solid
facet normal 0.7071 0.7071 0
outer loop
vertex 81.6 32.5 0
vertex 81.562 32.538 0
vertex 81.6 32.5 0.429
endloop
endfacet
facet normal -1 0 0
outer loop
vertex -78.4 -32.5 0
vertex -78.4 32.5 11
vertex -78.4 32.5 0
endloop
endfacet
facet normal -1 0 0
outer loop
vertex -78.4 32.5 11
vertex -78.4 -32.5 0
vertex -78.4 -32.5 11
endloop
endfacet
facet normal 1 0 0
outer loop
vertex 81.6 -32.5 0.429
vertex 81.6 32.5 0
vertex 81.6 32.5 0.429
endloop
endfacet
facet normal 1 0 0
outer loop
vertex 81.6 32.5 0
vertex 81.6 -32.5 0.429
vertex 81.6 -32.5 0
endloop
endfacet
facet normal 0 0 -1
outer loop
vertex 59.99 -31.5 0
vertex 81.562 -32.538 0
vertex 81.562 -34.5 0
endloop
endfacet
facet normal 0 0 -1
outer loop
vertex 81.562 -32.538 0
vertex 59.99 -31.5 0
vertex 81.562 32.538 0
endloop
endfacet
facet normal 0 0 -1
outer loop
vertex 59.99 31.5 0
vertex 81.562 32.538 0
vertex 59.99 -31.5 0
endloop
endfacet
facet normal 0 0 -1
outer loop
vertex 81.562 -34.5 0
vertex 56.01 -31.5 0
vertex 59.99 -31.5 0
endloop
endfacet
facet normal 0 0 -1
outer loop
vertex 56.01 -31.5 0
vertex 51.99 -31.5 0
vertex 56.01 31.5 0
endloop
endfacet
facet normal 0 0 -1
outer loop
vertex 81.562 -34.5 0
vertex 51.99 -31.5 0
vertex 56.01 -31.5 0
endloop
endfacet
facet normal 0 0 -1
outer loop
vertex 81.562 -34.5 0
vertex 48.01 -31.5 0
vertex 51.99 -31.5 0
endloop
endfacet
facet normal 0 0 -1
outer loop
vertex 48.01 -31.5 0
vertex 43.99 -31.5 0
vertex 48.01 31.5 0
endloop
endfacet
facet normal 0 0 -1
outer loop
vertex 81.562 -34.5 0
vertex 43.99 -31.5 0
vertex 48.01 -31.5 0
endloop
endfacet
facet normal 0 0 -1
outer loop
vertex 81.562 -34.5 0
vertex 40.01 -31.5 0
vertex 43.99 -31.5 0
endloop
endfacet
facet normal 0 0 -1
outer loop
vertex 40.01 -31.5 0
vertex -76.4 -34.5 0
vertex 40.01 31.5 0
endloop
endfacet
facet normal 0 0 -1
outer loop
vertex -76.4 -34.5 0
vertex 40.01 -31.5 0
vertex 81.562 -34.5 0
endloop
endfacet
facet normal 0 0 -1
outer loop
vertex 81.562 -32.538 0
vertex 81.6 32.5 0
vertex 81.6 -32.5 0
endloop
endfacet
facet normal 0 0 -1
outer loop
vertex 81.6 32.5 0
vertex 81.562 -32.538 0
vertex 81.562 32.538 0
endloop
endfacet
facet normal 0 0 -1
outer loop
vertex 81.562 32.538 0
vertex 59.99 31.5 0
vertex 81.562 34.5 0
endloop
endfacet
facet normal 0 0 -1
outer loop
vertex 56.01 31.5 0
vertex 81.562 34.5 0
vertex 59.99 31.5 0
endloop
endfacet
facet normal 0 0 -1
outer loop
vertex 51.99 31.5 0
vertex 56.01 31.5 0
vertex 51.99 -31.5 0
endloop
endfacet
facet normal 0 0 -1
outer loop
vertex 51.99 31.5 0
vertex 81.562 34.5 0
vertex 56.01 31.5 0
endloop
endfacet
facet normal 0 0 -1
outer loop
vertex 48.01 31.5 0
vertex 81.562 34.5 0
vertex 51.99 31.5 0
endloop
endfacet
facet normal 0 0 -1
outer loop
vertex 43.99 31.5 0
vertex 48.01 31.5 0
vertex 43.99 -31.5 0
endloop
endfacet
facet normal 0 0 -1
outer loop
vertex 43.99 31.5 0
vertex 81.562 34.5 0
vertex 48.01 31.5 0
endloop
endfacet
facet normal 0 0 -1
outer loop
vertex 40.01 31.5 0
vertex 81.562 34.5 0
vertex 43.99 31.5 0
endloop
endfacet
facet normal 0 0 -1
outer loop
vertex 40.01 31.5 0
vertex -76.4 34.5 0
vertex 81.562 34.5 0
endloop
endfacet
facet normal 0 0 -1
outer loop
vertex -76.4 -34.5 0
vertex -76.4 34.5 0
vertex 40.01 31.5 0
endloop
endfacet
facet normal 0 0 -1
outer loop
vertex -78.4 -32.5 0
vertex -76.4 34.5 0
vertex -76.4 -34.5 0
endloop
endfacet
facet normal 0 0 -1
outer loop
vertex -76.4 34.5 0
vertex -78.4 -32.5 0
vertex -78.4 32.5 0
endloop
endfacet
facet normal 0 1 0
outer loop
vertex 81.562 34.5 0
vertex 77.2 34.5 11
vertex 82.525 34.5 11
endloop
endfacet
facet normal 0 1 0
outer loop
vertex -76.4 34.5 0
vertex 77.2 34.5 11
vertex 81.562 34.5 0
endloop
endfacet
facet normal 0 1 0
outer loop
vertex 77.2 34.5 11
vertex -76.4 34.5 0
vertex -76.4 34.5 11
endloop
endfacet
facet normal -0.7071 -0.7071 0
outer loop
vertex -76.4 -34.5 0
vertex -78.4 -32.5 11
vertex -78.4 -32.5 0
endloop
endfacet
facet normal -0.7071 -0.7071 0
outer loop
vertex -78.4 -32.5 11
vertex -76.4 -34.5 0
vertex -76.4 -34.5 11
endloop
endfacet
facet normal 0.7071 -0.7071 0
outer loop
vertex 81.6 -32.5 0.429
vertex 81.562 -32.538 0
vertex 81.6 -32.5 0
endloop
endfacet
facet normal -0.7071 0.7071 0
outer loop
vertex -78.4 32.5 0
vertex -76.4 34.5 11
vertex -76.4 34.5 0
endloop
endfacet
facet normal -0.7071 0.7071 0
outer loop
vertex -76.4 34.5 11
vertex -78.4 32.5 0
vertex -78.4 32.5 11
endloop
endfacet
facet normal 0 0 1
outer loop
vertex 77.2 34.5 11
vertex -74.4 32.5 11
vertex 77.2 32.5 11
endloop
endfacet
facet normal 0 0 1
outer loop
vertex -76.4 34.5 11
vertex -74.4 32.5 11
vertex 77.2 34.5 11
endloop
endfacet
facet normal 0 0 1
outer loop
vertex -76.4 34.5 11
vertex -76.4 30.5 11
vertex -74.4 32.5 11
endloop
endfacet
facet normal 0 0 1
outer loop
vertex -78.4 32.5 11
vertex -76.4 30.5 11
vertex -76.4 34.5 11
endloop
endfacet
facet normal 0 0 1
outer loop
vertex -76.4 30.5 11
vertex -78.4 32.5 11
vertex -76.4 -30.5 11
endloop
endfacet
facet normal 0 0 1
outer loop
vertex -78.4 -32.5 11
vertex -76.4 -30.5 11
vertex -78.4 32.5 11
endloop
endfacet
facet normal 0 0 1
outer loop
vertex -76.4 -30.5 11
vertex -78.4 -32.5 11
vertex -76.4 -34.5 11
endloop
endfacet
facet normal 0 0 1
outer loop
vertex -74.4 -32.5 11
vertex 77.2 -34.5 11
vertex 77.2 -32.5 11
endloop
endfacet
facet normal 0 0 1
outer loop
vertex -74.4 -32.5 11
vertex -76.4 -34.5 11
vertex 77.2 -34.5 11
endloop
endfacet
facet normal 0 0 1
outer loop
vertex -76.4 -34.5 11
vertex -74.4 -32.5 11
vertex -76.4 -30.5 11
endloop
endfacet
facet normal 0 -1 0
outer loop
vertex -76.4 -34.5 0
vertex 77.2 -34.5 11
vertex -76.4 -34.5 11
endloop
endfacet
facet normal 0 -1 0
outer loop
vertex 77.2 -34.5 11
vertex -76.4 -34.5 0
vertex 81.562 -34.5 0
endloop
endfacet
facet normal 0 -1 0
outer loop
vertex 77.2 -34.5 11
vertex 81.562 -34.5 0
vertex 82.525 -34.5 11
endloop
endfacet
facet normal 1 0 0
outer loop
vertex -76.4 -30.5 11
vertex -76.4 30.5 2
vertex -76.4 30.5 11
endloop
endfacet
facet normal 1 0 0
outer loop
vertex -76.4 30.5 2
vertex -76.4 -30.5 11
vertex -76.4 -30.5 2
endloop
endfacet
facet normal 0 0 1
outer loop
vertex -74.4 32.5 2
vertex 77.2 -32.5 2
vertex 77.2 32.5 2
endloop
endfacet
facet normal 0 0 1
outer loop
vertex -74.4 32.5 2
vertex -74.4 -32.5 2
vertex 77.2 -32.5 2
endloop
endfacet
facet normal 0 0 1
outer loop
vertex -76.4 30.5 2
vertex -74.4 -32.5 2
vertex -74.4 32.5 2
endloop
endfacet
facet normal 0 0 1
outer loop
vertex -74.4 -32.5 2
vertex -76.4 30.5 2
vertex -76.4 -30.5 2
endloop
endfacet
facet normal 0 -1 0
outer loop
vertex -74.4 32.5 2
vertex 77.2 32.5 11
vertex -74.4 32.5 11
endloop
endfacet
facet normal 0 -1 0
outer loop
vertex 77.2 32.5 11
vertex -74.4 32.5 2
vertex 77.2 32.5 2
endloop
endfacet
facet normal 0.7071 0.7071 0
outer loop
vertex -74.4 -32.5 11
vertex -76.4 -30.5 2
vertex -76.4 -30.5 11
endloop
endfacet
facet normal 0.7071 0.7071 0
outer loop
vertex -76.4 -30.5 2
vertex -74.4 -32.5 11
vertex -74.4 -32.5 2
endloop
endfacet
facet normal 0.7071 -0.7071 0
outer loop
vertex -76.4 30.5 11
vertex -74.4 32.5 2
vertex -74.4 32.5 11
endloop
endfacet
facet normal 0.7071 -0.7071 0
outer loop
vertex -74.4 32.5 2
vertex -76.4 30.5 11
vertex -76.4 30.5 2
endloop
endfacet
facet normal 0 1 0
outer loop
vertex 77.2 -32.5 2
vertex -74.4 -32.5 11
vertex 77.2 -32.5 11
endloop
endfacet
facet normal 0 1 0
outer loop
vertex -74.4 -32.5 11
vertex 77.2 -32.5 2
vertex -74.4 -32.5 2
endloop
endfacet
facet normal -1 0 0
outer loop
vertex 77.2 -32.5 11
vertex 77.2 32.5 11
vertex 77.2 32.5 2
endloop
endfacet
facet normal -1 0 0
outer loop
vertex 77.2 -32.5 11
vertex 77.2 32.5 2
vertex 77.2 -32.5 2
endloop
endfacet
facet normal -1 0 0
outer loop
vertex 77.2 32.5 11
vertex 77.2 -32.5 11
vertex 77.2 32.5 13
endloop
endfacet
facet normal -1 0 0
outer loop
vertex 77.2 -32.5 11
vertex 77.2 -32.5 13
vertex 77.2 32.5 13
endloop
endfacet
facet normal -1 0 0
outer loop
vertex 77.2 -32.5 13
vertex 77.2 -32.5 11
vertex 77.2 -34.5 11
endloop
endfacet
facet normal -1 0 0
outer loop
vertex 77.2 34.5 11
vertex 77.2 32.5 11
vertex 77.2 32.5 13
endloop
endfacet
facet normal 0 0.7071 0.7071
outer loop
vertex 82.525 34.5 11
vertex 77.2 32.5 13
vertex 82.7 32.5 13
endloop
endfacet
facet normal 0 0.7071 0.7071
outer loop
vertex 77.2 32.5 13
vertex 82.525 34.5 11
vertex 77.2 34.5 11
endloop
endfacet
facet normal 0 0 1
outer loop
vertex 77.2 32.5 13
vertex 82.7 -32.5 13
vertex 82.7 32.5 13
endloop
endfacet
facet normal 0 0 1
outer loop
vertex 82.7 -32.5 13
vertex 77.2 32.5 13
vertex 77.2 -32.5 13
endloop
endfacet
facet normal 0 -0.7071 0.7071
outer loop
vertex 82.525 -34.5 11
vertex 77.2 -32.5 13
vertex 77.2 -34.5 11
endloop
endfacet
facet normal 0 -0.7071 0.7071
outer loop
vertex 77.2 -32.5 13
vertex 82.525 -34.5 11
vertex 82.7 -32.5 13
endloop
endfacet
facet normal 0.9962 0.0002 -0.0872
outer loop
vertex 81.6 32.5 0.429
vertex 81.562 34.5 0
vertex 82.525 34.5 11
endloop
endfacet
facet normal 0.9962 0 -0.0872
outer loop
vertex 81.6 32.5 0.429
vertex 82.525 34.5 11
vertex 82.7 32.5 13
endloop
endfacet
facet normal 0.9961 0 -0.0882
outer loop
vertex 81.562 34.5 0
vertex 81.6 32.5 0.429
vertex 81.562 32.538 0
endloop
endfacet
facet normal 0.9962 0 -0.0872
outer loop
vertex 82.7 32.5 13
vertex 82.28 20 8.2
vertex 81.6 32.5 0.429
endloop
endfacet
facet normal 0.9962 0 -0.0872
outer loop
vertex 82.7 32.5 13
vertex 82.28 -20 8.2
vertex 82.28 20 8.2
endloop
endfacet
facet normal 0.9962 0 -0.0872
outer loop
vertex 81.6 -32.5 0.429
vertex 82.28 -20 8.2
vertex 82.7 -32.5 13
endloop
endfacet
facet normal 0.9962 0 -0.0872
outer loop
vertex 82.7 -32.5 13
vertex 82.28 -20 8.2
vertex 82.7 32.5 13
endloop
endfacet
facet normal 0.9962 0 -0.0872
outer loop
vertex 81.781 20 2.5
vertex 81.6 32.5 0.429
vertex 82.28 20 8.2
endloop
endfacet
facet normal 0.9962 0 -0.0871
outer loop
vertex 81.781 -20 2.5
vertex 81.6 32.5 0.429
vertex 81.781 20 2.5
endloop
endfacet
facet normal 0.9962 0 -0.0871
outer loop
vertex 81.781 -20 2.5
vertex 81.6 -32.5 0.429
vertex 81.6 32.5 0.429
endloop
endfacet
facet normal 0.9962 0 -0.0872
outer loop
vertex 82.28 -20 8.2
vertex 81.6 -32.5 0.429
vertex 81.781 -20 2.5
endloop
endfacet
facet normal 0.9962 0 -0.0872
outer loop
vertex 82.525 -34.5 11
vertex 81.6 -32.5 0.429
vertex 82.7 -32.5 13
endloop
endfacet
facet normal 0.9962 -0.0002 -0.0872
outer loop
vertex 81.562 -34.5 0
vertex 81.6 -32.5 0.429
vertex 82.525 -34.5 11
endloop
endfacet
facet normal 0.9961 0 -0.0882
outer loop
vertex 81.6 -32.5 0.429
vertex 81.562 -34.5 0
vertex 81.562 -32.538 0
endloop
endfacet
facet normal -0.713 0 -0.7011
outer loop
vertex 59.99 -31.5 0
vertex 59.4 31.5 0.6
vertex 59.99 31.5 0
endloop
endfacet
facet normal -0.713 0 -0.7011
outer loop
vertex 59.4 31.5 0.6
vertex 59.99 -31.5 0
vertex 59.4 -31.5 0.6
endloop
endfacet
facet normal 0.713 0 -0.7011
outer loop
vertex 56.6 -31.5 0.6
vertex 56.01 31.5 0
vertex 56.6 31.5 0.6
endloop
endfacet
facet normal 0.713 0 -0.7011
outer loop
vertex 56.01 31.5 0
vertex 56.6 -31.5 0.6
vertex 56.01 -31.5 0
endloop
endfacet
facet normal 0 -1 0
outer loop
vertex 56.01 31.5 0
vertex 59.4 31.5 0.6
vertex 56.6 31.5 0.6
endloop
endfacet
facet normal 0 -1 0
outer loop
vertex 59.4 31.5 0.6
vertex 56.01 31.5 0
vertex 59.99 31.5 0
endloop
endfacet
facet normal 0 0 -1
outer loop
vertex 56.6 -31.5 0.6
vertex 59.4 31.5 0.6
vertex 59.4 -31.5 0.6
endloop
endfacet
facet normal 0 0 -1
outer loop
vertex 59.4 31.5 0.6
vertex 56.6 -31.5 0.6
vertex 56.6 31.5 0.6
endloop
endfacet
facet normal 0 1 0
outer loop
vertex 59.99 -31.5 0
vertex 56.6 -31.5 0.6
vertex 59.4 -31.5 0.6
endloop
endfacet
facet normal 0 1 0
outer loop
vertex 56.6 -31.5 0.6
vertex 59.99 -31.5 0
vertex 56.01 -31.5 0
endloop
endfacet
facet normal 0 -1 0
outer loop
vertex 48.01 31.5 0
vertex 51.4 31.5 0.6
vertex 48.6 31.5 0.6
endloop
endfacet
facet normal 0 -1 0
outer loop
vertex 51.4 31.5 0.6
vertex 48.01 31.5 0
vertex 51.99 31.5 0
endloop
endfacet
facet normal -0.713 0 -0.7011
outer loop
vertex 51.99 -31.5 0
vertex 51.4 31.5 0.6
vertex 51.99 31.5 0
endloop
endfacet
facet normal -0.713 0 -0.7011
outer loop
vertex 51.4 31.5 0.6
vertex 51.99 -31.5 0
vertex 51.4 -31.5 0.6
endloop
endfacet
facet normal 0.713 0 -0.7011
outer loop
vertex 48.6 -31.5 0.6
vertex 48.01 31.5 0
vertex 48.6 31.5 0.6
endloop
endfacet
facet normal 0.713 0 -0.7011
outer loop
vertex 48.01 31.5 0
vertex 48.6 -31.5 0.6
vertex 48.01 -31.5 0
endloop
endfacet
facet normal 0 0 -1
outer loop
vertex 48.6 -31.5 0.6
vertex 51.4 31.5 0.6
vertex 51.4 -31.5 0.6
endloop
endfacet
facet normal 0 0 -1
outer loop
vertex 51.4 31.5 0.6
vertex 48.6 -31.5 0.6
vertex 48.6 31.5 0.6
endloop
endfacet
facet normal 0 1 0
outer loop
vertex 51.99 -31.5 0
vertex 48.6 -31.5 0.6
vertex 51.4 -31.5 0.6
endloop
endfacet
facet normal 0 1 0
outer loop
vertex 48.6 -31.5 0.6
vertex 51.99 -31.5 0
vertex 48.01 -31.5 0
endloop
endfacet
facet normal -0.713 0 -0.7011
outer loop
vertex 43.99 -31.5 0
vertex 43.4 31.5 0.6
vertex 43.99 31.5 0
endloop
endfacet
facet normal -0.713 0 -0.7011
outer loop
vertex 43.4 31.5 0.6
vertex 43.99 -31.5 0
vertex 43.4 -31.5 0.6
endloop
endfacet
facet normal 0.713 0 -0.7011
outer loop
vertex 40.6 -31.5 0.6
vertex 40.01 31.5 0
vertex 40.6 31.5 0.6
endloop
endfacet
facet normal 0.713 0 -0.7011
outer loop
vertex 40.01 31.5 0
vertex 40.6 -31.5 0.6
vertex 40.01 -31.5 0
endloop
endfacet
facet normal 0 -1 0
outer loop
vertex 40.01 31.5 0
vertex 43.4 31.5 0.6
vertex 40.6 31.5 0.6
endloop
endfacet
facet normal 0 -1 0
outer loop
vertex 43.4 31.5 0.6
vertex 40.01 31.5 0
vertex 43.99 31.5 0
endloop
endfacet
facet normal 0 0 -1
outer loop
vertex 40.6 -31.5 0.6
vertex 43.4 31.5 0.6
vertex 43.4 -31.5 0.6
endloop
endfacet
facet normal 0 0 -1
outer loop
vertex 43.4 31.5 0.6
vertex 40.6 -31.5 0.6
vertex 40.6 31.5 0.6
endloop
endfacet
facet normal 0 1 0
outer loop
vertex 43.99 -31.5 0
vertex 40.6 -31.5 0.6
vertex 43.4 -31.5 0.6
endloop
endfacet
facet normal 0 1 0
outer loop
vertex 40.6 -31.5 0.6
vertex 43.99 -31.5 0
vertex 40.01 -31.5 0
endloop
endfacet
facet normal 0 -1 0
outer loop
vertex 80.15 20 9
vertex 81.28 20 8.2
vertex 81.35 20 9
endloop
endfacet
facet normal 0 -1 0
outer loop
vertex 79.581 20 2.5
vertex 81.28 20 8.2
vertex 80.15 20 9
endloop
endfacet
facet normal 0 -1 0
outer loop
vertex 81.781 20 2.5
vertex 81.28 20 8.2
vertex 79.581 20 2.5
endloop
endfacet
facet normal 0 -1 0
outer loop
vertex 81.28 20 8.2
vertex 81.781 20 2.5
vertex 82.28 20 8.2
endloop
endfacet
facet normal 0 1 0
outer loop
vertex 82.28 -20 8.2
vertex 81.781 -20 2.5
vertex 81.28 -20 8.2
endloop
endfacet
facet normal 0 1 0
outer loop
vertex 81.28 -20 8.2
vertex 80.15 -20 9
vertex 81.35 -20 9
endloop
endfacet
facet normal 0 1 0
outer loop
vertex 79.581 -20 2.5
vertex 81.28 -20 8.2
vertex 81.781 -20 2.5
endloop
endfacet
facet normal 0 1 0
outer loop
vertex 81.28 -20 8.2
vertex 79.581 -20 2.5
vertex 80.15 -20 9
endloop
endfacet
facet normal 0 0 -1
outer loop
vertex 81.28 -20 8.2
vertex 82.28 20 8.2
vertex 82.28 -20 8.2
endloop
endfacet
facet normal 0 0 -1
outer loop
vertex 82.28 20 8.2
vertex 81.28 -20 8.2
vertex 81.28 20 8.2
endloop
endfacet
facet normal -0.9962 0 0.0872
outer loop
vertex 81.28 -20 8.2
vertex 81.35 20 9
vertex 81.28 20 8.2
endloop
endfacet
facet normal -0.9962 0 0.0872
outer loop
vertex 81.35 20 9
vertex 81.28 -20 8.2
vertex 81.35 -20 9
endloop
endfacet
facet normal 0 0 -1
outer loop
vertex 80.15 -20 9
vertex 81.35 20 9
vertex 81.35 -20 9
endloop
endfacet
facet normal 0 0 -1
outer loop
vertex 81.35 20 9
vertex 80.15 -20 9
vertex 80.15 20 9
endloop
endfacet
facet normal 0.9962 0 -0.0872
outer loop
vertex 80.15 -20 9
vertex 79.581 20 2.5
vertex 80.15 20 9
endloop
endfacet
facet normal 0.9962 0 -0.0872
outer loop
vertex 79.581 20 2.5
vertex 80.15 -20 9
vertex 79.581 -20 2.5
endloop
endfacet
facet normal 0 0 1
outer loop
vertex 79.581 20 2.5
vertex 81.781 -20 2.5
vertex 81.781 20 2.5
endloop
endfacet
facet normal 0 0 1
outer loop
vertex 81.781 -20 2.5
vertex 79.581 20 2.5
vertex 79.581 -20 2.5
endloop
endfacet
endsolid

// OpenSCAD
// Pull-out drip tray only — prints as modelled, flat on the bed, basin
// up. See marsh_repot_017.scad.
include <marsh_repot_017.scad>
part = "tray";
